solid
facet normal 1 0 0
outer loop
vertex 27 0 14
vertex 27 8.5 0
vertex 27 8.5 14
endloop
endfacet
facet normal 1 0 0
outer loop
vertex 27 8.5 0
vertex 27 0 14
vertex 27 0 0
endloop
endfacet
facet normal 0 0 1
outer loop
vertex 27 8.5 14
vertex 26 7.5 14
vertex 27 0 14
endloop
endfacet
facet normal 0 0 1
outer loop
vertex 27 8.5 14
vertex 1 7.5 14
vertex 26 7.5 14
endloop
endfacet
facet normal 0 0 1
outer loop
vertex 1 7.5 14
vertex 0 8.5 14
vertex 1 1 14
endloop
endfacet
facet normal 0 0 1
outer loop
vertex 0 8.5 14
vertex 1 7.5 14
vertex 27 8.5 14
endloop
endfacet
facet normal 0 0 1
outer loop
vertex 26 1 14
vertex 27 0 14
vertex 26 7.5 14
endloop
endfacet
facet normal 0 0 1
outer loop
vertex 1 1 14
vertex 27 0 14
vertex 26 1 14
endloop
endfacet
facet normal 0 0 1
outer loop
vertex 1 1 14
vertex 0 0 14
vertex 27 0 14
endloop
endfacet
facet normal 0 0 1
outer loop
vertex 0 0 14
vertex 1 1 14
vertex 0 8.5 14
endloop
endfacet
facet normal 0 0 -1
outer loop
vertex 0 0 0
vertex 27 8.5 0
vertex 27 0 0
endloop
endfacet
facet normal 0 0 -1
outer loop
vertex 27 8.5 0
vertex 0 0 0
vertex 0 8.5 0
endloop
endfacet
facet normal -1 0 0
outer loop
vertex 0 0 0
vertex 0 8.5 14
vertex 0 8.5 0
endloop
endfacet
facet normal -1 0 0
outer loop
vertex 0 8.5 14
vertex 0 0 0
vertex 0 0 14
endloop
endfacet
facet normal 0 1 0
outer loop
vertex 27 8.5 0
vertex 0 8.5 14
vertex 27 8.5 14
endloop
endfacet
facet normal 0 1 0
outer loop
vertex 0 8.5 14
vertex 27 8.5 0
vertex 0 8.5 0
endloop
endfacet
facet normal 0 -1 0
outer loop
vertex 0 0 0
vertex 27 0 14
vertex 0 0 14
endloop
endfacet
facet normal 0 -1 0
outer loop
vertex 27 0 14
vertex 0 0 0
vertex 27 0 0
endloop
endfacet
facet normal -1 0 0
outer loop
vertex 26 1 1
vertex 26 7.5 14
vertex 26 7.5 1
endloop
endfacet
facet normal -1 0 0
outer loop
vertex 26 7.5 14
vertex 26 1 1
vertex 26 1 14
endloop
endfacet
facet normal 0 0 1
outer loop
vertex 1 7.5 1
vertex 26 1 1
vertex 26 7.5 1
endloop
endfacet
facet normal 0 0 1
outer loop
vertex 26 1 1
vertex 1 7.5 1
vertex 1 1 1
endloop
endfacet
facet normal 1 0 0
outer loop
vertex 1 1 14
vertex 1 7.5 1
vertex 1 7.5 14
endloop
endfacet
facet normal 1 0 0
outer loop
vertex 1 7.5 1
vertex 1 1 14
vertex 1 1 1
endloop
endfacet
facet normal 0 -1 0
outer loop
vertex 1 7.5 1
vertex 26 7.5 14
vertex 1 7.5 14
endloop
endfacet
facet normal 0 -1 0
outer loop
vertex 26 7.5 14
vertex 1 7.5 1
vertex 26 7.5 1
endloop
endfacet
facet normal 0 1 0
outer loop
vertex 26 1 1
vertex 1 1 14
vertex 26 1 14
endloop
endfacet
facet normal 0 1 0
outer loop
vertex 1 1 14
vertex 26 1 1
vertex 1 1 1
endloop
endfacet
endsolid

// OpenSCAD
outer_width = 27;
outer_depth = 8.5;
outer_height = 14;

offset_width = 1;
offset_depth = 1;
offset_height = 1;

inner_width = outer_width - offset_width - offset_width;
inner_depth = outer_depth - offset_depth - offset_depth;
inner_height = outer_height - offset_height;

difference()
{
    cube([outer_width, outer_depth, outer_height]);
    
    translate([offset_width, offset_depth, offset_height])
    {
        cube([inner_width, inner_depth, inner_height]);
    }
}
    
    
